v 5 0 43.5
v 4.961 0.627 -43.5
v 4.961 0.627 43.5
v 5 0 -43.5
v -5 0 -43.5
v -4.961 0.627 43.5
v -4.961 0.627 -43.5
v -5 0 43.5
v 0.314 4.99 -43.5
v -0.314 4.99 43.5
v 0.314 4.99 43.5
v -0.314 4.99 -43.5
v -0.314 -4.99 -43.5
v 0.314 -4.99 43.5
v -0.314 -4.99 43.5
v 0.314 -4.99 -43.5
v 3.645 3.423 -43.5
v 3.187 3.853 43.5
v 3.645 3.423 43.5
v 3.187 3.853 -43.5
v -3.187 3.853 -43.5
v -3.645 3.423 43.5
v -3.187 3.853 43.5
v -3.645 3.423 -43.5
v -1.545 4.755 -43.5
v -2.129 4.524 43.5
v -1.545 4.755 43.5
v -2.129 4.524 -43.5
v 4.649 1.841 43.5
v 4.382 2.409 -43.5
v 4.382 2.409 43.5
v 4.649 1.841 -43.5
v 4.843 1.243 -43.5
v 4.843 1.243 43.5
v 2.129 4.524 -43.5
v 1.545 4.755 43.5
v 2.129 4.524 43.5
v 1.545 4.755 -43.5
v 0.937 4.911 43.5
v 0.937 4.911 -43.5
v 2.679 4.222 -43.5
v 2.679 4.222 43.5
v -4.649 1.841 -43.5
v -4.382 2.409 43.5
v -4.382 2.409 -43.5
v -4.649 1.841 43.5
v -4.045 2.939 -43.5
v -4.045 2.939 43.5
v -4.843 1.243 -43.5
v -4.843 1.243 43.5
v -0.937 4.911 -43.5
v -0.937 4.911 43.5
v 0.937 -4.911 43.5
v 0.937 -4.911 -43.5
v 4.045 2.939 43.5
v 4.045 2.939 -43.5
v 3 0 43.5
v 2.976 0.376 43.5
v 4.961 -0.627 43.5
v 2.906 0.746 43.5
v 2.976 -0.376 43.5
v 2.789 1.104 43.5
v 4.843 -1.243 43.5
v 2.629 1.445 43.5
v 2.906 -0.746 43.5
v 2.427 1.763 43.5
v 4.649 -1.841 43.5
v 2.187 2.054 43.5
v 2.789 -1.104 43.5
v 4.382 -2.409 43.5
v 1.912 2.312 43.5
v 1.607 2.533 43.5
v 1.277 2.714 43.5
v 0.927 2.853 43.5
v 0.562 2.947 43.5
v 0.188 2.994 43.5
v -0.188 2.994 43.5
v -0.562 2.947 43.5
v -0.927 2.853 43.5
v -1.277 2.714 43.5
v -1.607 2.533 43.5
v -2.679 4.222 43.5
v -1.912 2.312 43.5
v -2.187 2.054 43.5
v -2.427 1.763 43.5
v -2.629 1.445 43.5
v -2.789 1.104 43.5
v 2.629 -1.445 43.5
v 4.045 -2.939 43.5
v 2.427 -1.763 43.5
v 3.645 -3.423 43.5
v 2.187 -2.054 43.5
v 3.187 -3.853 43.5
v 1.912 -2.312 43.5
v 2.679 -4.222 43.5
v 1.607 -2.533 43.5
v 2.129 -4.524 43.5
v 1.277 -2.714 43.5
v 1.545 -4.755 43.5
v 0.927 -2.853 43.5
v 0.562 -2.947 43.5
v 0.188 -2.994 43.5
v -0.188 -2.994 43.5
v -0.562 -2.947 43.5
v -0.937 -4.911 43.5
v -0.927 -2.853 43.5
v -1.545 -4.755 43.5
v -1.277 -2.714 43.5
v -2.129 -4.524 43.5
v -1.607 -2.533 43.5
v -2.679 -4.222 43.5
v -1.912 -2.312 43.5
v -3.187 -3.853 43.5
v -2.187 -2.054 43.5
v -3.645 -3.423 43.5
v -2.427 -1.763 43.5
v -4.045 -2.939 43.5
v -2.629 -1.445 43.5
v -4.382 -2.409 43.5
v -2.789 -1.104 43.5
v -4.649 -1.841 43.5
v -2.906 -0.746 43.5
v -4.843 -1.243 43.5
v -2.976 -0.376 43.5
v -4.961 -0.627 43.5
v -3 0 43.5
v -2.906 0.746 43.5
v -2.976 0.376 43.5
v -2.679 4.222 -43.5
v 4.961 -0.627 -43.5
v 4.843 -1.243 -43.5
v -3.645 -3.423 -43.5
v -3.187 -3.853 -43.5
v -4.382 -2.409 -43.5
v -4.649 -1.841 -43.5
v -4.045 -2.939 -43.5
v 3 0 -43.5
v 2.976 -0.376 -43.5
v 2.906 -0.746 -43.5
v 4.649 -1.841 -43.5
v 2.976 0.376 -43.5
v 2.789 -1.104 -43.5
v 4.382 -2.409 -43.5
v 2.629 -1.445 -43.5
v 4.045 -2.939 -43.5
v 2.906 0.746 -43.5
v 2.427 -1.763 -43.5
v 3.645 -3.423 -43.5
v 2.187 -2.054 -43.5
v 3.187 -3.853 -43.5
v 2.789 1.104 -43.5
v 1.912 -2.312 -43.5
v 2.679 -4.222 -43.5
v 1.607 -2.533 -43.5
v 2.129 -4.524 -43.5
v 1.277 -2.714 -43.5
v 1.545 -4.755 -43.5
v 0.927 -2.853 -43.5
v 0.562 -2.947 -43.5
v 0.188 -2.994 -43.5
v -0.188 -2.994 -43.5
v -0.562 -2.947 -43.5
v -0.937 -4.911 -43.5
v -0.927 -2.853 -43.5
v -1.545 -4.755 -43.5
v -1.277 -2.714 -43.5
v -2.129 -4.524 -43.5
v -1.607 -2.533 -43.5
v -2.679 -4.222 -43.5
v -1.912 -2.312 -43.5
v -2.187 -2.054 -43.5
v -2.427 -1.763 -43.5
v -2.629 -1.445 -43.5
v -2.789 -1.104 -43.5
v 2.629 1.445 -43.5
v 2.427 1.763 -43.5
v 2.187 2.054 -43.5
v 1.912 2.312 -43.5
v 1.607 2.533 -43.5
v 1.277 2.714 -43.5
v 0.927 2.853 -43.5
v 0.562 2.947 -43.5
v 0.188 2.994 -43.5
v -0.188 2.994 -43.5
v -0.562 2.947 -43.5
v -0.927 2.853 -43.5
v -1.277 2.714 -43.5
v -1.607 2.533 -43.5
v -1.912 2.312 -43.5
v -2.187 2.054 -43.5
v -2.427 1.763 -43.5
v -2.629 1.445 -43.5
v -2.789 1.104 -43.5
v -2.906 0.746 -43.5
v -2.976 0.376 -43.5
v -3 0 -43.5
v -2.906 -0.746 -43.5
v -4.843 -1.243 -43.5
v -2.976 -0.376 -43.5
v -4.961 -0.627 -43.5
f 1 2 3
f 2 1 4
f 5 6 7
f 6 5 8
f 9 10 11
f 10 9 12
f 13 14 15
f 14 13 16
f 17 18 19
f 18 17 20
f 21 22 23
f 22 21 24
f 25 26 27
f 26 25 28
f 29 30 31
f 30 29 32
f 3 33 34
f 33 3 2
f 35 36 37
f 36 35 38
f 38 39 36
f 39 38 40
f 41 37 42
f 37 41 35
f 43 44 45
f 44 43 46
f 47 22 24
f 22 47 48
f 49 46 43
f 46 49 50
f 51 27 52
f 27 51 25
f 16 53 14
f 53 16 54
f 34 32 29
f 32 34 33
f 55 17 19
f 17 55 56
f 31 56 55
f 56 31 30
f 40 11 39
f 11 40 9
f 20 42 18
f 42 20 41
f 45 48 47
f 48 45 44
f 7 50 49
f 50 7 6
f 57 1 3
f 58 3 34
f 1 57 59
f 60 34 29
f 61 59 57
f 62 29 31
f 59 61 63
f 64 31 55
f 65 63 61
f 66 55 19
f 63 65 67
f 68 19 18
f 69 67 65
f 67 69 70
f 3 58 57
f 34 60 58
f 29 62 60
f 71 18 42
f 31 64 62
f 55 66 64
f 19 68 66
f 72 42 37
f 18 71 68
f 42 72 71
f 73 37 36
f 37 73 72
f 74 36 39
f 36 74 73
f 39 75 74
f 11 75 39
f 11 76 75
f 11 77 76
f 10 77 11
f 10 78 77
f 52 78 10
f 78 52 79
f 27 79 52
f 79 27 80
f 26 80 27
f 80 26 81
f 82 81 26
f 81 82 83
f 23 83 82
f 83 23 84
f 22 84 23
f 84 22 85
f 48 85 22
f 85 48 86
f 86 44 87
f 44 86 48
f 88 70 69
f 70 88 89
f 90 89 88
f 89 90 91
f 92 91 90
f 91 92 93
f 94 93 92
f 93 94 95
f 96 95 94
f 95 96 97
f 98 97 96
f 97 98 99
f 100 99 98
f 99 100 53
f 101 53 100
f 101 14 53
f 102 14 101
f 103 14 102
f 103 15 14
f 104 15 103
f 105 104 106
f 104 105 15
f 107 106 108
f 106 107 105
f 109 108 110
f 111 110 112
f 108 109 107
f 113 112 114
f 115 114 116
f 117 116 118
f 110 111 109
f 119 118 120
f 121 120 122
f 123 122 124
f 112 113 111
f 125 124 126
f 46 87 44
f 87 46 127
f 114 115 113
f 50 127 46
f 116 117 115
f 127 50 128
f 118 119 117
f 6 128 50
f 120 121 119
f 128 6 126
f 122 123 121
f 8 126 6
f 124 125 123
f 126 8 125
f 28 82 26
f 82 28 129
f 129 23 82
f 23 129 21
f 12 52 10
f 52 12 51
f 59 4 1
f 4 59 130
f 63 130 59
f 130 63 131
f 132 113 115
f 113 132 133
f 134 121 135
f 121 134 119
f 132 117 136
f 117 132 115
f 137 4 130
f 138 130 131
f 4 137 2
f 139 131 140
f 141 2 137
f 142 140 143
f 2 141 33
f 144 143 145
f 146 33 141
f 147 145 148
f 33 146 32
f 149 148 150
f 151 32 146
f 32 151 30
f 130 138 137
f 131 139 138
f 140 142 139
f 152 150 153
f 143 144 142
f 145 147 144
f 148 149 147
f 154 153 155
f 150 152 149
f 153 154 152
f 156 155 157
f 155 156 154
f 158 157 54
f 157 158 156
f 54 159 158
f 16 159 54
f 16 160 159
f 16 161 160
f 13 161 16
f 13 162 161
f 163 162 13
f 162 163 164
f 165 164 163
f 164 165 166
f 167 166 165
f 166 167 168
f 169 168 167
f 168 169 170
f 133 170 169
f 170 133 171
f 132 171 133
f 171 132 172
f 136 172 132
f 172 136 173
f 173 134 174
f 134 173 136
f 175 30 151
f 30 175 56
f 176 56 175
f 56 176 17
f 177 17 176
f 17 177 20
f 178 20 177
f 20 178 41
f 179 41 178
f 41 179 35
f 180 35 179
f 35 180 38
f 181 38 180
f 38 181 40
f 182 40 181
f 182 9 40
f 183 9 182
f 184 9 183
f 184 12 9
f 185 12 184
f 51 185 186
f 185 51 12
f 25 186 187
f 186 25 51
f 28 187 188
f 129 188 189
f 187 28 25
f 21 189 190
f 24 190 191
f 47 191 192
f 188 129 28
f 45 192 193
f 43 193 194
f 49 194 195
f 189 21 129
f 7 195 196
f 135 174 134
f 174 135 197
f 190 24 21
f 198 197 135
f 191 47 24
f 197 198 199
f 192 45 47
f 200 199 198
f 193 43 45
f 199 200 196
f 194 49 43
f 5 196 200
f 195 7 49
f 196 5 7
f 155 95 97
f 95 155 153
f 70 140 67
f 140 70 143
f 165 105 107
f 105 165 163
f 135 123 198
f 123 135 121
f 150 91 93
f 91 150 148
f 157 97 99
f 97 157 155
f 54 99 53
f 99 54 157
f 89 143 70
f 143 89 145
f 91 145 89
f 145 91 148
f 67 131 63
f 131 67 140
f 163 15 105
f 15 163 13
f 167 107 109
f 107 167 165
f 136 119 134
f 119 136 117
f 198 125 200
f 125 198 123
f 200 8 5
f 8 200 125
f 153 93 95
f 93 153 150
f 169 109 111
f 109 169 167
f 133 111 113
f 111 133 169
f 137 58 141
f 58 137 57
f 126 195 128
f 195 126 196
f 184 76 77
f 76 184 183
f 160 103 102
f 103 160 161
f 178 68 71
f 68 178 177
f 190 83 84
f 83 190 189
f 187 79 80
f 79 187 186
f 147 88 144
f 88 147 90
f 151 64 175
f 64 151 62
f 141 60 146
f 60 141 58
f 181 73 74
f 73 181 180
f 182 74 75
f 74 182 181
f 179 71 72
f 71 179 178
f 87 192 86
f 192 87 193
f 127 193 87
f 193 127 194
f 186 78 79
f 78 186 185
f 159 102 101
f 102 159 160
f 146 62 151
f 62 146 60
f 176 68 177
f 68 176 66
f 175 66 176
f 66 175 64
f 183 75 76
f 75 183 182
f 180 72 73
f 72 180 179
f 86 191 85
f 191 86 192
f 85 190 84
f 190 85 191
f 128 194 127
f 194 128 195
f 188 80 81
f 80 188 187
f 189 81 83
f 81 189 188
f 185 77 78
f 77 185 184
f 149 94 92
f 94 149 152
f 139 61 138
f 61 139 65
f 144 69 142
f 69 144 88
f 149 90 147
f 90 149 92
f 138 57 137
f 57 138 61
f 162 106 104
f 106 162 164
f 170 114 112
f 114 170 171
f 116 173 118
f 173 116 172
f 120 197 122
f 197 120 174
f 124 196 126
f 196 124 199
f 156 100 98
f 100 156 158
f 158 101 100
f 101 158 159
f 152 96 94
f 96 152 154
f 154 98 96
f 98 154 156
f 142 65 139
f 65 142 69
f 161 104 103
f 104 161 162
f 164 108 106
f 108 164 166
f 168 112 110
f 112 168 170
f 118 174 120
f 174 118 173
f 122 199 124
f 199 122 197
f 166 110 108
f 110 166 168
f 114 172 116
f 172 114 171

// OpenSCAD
$fn = 50;


difference() {
	union() {
		translate(v = [0, 0, -43.5000000000]) {
			cylinder(h = 87, r = 5.0000000000);
		}
	}
	union() {
		translate(v = [0, 0, -100.0000000000]) {
			cylinder(h = 200, r = 3);
		}
	}
}
